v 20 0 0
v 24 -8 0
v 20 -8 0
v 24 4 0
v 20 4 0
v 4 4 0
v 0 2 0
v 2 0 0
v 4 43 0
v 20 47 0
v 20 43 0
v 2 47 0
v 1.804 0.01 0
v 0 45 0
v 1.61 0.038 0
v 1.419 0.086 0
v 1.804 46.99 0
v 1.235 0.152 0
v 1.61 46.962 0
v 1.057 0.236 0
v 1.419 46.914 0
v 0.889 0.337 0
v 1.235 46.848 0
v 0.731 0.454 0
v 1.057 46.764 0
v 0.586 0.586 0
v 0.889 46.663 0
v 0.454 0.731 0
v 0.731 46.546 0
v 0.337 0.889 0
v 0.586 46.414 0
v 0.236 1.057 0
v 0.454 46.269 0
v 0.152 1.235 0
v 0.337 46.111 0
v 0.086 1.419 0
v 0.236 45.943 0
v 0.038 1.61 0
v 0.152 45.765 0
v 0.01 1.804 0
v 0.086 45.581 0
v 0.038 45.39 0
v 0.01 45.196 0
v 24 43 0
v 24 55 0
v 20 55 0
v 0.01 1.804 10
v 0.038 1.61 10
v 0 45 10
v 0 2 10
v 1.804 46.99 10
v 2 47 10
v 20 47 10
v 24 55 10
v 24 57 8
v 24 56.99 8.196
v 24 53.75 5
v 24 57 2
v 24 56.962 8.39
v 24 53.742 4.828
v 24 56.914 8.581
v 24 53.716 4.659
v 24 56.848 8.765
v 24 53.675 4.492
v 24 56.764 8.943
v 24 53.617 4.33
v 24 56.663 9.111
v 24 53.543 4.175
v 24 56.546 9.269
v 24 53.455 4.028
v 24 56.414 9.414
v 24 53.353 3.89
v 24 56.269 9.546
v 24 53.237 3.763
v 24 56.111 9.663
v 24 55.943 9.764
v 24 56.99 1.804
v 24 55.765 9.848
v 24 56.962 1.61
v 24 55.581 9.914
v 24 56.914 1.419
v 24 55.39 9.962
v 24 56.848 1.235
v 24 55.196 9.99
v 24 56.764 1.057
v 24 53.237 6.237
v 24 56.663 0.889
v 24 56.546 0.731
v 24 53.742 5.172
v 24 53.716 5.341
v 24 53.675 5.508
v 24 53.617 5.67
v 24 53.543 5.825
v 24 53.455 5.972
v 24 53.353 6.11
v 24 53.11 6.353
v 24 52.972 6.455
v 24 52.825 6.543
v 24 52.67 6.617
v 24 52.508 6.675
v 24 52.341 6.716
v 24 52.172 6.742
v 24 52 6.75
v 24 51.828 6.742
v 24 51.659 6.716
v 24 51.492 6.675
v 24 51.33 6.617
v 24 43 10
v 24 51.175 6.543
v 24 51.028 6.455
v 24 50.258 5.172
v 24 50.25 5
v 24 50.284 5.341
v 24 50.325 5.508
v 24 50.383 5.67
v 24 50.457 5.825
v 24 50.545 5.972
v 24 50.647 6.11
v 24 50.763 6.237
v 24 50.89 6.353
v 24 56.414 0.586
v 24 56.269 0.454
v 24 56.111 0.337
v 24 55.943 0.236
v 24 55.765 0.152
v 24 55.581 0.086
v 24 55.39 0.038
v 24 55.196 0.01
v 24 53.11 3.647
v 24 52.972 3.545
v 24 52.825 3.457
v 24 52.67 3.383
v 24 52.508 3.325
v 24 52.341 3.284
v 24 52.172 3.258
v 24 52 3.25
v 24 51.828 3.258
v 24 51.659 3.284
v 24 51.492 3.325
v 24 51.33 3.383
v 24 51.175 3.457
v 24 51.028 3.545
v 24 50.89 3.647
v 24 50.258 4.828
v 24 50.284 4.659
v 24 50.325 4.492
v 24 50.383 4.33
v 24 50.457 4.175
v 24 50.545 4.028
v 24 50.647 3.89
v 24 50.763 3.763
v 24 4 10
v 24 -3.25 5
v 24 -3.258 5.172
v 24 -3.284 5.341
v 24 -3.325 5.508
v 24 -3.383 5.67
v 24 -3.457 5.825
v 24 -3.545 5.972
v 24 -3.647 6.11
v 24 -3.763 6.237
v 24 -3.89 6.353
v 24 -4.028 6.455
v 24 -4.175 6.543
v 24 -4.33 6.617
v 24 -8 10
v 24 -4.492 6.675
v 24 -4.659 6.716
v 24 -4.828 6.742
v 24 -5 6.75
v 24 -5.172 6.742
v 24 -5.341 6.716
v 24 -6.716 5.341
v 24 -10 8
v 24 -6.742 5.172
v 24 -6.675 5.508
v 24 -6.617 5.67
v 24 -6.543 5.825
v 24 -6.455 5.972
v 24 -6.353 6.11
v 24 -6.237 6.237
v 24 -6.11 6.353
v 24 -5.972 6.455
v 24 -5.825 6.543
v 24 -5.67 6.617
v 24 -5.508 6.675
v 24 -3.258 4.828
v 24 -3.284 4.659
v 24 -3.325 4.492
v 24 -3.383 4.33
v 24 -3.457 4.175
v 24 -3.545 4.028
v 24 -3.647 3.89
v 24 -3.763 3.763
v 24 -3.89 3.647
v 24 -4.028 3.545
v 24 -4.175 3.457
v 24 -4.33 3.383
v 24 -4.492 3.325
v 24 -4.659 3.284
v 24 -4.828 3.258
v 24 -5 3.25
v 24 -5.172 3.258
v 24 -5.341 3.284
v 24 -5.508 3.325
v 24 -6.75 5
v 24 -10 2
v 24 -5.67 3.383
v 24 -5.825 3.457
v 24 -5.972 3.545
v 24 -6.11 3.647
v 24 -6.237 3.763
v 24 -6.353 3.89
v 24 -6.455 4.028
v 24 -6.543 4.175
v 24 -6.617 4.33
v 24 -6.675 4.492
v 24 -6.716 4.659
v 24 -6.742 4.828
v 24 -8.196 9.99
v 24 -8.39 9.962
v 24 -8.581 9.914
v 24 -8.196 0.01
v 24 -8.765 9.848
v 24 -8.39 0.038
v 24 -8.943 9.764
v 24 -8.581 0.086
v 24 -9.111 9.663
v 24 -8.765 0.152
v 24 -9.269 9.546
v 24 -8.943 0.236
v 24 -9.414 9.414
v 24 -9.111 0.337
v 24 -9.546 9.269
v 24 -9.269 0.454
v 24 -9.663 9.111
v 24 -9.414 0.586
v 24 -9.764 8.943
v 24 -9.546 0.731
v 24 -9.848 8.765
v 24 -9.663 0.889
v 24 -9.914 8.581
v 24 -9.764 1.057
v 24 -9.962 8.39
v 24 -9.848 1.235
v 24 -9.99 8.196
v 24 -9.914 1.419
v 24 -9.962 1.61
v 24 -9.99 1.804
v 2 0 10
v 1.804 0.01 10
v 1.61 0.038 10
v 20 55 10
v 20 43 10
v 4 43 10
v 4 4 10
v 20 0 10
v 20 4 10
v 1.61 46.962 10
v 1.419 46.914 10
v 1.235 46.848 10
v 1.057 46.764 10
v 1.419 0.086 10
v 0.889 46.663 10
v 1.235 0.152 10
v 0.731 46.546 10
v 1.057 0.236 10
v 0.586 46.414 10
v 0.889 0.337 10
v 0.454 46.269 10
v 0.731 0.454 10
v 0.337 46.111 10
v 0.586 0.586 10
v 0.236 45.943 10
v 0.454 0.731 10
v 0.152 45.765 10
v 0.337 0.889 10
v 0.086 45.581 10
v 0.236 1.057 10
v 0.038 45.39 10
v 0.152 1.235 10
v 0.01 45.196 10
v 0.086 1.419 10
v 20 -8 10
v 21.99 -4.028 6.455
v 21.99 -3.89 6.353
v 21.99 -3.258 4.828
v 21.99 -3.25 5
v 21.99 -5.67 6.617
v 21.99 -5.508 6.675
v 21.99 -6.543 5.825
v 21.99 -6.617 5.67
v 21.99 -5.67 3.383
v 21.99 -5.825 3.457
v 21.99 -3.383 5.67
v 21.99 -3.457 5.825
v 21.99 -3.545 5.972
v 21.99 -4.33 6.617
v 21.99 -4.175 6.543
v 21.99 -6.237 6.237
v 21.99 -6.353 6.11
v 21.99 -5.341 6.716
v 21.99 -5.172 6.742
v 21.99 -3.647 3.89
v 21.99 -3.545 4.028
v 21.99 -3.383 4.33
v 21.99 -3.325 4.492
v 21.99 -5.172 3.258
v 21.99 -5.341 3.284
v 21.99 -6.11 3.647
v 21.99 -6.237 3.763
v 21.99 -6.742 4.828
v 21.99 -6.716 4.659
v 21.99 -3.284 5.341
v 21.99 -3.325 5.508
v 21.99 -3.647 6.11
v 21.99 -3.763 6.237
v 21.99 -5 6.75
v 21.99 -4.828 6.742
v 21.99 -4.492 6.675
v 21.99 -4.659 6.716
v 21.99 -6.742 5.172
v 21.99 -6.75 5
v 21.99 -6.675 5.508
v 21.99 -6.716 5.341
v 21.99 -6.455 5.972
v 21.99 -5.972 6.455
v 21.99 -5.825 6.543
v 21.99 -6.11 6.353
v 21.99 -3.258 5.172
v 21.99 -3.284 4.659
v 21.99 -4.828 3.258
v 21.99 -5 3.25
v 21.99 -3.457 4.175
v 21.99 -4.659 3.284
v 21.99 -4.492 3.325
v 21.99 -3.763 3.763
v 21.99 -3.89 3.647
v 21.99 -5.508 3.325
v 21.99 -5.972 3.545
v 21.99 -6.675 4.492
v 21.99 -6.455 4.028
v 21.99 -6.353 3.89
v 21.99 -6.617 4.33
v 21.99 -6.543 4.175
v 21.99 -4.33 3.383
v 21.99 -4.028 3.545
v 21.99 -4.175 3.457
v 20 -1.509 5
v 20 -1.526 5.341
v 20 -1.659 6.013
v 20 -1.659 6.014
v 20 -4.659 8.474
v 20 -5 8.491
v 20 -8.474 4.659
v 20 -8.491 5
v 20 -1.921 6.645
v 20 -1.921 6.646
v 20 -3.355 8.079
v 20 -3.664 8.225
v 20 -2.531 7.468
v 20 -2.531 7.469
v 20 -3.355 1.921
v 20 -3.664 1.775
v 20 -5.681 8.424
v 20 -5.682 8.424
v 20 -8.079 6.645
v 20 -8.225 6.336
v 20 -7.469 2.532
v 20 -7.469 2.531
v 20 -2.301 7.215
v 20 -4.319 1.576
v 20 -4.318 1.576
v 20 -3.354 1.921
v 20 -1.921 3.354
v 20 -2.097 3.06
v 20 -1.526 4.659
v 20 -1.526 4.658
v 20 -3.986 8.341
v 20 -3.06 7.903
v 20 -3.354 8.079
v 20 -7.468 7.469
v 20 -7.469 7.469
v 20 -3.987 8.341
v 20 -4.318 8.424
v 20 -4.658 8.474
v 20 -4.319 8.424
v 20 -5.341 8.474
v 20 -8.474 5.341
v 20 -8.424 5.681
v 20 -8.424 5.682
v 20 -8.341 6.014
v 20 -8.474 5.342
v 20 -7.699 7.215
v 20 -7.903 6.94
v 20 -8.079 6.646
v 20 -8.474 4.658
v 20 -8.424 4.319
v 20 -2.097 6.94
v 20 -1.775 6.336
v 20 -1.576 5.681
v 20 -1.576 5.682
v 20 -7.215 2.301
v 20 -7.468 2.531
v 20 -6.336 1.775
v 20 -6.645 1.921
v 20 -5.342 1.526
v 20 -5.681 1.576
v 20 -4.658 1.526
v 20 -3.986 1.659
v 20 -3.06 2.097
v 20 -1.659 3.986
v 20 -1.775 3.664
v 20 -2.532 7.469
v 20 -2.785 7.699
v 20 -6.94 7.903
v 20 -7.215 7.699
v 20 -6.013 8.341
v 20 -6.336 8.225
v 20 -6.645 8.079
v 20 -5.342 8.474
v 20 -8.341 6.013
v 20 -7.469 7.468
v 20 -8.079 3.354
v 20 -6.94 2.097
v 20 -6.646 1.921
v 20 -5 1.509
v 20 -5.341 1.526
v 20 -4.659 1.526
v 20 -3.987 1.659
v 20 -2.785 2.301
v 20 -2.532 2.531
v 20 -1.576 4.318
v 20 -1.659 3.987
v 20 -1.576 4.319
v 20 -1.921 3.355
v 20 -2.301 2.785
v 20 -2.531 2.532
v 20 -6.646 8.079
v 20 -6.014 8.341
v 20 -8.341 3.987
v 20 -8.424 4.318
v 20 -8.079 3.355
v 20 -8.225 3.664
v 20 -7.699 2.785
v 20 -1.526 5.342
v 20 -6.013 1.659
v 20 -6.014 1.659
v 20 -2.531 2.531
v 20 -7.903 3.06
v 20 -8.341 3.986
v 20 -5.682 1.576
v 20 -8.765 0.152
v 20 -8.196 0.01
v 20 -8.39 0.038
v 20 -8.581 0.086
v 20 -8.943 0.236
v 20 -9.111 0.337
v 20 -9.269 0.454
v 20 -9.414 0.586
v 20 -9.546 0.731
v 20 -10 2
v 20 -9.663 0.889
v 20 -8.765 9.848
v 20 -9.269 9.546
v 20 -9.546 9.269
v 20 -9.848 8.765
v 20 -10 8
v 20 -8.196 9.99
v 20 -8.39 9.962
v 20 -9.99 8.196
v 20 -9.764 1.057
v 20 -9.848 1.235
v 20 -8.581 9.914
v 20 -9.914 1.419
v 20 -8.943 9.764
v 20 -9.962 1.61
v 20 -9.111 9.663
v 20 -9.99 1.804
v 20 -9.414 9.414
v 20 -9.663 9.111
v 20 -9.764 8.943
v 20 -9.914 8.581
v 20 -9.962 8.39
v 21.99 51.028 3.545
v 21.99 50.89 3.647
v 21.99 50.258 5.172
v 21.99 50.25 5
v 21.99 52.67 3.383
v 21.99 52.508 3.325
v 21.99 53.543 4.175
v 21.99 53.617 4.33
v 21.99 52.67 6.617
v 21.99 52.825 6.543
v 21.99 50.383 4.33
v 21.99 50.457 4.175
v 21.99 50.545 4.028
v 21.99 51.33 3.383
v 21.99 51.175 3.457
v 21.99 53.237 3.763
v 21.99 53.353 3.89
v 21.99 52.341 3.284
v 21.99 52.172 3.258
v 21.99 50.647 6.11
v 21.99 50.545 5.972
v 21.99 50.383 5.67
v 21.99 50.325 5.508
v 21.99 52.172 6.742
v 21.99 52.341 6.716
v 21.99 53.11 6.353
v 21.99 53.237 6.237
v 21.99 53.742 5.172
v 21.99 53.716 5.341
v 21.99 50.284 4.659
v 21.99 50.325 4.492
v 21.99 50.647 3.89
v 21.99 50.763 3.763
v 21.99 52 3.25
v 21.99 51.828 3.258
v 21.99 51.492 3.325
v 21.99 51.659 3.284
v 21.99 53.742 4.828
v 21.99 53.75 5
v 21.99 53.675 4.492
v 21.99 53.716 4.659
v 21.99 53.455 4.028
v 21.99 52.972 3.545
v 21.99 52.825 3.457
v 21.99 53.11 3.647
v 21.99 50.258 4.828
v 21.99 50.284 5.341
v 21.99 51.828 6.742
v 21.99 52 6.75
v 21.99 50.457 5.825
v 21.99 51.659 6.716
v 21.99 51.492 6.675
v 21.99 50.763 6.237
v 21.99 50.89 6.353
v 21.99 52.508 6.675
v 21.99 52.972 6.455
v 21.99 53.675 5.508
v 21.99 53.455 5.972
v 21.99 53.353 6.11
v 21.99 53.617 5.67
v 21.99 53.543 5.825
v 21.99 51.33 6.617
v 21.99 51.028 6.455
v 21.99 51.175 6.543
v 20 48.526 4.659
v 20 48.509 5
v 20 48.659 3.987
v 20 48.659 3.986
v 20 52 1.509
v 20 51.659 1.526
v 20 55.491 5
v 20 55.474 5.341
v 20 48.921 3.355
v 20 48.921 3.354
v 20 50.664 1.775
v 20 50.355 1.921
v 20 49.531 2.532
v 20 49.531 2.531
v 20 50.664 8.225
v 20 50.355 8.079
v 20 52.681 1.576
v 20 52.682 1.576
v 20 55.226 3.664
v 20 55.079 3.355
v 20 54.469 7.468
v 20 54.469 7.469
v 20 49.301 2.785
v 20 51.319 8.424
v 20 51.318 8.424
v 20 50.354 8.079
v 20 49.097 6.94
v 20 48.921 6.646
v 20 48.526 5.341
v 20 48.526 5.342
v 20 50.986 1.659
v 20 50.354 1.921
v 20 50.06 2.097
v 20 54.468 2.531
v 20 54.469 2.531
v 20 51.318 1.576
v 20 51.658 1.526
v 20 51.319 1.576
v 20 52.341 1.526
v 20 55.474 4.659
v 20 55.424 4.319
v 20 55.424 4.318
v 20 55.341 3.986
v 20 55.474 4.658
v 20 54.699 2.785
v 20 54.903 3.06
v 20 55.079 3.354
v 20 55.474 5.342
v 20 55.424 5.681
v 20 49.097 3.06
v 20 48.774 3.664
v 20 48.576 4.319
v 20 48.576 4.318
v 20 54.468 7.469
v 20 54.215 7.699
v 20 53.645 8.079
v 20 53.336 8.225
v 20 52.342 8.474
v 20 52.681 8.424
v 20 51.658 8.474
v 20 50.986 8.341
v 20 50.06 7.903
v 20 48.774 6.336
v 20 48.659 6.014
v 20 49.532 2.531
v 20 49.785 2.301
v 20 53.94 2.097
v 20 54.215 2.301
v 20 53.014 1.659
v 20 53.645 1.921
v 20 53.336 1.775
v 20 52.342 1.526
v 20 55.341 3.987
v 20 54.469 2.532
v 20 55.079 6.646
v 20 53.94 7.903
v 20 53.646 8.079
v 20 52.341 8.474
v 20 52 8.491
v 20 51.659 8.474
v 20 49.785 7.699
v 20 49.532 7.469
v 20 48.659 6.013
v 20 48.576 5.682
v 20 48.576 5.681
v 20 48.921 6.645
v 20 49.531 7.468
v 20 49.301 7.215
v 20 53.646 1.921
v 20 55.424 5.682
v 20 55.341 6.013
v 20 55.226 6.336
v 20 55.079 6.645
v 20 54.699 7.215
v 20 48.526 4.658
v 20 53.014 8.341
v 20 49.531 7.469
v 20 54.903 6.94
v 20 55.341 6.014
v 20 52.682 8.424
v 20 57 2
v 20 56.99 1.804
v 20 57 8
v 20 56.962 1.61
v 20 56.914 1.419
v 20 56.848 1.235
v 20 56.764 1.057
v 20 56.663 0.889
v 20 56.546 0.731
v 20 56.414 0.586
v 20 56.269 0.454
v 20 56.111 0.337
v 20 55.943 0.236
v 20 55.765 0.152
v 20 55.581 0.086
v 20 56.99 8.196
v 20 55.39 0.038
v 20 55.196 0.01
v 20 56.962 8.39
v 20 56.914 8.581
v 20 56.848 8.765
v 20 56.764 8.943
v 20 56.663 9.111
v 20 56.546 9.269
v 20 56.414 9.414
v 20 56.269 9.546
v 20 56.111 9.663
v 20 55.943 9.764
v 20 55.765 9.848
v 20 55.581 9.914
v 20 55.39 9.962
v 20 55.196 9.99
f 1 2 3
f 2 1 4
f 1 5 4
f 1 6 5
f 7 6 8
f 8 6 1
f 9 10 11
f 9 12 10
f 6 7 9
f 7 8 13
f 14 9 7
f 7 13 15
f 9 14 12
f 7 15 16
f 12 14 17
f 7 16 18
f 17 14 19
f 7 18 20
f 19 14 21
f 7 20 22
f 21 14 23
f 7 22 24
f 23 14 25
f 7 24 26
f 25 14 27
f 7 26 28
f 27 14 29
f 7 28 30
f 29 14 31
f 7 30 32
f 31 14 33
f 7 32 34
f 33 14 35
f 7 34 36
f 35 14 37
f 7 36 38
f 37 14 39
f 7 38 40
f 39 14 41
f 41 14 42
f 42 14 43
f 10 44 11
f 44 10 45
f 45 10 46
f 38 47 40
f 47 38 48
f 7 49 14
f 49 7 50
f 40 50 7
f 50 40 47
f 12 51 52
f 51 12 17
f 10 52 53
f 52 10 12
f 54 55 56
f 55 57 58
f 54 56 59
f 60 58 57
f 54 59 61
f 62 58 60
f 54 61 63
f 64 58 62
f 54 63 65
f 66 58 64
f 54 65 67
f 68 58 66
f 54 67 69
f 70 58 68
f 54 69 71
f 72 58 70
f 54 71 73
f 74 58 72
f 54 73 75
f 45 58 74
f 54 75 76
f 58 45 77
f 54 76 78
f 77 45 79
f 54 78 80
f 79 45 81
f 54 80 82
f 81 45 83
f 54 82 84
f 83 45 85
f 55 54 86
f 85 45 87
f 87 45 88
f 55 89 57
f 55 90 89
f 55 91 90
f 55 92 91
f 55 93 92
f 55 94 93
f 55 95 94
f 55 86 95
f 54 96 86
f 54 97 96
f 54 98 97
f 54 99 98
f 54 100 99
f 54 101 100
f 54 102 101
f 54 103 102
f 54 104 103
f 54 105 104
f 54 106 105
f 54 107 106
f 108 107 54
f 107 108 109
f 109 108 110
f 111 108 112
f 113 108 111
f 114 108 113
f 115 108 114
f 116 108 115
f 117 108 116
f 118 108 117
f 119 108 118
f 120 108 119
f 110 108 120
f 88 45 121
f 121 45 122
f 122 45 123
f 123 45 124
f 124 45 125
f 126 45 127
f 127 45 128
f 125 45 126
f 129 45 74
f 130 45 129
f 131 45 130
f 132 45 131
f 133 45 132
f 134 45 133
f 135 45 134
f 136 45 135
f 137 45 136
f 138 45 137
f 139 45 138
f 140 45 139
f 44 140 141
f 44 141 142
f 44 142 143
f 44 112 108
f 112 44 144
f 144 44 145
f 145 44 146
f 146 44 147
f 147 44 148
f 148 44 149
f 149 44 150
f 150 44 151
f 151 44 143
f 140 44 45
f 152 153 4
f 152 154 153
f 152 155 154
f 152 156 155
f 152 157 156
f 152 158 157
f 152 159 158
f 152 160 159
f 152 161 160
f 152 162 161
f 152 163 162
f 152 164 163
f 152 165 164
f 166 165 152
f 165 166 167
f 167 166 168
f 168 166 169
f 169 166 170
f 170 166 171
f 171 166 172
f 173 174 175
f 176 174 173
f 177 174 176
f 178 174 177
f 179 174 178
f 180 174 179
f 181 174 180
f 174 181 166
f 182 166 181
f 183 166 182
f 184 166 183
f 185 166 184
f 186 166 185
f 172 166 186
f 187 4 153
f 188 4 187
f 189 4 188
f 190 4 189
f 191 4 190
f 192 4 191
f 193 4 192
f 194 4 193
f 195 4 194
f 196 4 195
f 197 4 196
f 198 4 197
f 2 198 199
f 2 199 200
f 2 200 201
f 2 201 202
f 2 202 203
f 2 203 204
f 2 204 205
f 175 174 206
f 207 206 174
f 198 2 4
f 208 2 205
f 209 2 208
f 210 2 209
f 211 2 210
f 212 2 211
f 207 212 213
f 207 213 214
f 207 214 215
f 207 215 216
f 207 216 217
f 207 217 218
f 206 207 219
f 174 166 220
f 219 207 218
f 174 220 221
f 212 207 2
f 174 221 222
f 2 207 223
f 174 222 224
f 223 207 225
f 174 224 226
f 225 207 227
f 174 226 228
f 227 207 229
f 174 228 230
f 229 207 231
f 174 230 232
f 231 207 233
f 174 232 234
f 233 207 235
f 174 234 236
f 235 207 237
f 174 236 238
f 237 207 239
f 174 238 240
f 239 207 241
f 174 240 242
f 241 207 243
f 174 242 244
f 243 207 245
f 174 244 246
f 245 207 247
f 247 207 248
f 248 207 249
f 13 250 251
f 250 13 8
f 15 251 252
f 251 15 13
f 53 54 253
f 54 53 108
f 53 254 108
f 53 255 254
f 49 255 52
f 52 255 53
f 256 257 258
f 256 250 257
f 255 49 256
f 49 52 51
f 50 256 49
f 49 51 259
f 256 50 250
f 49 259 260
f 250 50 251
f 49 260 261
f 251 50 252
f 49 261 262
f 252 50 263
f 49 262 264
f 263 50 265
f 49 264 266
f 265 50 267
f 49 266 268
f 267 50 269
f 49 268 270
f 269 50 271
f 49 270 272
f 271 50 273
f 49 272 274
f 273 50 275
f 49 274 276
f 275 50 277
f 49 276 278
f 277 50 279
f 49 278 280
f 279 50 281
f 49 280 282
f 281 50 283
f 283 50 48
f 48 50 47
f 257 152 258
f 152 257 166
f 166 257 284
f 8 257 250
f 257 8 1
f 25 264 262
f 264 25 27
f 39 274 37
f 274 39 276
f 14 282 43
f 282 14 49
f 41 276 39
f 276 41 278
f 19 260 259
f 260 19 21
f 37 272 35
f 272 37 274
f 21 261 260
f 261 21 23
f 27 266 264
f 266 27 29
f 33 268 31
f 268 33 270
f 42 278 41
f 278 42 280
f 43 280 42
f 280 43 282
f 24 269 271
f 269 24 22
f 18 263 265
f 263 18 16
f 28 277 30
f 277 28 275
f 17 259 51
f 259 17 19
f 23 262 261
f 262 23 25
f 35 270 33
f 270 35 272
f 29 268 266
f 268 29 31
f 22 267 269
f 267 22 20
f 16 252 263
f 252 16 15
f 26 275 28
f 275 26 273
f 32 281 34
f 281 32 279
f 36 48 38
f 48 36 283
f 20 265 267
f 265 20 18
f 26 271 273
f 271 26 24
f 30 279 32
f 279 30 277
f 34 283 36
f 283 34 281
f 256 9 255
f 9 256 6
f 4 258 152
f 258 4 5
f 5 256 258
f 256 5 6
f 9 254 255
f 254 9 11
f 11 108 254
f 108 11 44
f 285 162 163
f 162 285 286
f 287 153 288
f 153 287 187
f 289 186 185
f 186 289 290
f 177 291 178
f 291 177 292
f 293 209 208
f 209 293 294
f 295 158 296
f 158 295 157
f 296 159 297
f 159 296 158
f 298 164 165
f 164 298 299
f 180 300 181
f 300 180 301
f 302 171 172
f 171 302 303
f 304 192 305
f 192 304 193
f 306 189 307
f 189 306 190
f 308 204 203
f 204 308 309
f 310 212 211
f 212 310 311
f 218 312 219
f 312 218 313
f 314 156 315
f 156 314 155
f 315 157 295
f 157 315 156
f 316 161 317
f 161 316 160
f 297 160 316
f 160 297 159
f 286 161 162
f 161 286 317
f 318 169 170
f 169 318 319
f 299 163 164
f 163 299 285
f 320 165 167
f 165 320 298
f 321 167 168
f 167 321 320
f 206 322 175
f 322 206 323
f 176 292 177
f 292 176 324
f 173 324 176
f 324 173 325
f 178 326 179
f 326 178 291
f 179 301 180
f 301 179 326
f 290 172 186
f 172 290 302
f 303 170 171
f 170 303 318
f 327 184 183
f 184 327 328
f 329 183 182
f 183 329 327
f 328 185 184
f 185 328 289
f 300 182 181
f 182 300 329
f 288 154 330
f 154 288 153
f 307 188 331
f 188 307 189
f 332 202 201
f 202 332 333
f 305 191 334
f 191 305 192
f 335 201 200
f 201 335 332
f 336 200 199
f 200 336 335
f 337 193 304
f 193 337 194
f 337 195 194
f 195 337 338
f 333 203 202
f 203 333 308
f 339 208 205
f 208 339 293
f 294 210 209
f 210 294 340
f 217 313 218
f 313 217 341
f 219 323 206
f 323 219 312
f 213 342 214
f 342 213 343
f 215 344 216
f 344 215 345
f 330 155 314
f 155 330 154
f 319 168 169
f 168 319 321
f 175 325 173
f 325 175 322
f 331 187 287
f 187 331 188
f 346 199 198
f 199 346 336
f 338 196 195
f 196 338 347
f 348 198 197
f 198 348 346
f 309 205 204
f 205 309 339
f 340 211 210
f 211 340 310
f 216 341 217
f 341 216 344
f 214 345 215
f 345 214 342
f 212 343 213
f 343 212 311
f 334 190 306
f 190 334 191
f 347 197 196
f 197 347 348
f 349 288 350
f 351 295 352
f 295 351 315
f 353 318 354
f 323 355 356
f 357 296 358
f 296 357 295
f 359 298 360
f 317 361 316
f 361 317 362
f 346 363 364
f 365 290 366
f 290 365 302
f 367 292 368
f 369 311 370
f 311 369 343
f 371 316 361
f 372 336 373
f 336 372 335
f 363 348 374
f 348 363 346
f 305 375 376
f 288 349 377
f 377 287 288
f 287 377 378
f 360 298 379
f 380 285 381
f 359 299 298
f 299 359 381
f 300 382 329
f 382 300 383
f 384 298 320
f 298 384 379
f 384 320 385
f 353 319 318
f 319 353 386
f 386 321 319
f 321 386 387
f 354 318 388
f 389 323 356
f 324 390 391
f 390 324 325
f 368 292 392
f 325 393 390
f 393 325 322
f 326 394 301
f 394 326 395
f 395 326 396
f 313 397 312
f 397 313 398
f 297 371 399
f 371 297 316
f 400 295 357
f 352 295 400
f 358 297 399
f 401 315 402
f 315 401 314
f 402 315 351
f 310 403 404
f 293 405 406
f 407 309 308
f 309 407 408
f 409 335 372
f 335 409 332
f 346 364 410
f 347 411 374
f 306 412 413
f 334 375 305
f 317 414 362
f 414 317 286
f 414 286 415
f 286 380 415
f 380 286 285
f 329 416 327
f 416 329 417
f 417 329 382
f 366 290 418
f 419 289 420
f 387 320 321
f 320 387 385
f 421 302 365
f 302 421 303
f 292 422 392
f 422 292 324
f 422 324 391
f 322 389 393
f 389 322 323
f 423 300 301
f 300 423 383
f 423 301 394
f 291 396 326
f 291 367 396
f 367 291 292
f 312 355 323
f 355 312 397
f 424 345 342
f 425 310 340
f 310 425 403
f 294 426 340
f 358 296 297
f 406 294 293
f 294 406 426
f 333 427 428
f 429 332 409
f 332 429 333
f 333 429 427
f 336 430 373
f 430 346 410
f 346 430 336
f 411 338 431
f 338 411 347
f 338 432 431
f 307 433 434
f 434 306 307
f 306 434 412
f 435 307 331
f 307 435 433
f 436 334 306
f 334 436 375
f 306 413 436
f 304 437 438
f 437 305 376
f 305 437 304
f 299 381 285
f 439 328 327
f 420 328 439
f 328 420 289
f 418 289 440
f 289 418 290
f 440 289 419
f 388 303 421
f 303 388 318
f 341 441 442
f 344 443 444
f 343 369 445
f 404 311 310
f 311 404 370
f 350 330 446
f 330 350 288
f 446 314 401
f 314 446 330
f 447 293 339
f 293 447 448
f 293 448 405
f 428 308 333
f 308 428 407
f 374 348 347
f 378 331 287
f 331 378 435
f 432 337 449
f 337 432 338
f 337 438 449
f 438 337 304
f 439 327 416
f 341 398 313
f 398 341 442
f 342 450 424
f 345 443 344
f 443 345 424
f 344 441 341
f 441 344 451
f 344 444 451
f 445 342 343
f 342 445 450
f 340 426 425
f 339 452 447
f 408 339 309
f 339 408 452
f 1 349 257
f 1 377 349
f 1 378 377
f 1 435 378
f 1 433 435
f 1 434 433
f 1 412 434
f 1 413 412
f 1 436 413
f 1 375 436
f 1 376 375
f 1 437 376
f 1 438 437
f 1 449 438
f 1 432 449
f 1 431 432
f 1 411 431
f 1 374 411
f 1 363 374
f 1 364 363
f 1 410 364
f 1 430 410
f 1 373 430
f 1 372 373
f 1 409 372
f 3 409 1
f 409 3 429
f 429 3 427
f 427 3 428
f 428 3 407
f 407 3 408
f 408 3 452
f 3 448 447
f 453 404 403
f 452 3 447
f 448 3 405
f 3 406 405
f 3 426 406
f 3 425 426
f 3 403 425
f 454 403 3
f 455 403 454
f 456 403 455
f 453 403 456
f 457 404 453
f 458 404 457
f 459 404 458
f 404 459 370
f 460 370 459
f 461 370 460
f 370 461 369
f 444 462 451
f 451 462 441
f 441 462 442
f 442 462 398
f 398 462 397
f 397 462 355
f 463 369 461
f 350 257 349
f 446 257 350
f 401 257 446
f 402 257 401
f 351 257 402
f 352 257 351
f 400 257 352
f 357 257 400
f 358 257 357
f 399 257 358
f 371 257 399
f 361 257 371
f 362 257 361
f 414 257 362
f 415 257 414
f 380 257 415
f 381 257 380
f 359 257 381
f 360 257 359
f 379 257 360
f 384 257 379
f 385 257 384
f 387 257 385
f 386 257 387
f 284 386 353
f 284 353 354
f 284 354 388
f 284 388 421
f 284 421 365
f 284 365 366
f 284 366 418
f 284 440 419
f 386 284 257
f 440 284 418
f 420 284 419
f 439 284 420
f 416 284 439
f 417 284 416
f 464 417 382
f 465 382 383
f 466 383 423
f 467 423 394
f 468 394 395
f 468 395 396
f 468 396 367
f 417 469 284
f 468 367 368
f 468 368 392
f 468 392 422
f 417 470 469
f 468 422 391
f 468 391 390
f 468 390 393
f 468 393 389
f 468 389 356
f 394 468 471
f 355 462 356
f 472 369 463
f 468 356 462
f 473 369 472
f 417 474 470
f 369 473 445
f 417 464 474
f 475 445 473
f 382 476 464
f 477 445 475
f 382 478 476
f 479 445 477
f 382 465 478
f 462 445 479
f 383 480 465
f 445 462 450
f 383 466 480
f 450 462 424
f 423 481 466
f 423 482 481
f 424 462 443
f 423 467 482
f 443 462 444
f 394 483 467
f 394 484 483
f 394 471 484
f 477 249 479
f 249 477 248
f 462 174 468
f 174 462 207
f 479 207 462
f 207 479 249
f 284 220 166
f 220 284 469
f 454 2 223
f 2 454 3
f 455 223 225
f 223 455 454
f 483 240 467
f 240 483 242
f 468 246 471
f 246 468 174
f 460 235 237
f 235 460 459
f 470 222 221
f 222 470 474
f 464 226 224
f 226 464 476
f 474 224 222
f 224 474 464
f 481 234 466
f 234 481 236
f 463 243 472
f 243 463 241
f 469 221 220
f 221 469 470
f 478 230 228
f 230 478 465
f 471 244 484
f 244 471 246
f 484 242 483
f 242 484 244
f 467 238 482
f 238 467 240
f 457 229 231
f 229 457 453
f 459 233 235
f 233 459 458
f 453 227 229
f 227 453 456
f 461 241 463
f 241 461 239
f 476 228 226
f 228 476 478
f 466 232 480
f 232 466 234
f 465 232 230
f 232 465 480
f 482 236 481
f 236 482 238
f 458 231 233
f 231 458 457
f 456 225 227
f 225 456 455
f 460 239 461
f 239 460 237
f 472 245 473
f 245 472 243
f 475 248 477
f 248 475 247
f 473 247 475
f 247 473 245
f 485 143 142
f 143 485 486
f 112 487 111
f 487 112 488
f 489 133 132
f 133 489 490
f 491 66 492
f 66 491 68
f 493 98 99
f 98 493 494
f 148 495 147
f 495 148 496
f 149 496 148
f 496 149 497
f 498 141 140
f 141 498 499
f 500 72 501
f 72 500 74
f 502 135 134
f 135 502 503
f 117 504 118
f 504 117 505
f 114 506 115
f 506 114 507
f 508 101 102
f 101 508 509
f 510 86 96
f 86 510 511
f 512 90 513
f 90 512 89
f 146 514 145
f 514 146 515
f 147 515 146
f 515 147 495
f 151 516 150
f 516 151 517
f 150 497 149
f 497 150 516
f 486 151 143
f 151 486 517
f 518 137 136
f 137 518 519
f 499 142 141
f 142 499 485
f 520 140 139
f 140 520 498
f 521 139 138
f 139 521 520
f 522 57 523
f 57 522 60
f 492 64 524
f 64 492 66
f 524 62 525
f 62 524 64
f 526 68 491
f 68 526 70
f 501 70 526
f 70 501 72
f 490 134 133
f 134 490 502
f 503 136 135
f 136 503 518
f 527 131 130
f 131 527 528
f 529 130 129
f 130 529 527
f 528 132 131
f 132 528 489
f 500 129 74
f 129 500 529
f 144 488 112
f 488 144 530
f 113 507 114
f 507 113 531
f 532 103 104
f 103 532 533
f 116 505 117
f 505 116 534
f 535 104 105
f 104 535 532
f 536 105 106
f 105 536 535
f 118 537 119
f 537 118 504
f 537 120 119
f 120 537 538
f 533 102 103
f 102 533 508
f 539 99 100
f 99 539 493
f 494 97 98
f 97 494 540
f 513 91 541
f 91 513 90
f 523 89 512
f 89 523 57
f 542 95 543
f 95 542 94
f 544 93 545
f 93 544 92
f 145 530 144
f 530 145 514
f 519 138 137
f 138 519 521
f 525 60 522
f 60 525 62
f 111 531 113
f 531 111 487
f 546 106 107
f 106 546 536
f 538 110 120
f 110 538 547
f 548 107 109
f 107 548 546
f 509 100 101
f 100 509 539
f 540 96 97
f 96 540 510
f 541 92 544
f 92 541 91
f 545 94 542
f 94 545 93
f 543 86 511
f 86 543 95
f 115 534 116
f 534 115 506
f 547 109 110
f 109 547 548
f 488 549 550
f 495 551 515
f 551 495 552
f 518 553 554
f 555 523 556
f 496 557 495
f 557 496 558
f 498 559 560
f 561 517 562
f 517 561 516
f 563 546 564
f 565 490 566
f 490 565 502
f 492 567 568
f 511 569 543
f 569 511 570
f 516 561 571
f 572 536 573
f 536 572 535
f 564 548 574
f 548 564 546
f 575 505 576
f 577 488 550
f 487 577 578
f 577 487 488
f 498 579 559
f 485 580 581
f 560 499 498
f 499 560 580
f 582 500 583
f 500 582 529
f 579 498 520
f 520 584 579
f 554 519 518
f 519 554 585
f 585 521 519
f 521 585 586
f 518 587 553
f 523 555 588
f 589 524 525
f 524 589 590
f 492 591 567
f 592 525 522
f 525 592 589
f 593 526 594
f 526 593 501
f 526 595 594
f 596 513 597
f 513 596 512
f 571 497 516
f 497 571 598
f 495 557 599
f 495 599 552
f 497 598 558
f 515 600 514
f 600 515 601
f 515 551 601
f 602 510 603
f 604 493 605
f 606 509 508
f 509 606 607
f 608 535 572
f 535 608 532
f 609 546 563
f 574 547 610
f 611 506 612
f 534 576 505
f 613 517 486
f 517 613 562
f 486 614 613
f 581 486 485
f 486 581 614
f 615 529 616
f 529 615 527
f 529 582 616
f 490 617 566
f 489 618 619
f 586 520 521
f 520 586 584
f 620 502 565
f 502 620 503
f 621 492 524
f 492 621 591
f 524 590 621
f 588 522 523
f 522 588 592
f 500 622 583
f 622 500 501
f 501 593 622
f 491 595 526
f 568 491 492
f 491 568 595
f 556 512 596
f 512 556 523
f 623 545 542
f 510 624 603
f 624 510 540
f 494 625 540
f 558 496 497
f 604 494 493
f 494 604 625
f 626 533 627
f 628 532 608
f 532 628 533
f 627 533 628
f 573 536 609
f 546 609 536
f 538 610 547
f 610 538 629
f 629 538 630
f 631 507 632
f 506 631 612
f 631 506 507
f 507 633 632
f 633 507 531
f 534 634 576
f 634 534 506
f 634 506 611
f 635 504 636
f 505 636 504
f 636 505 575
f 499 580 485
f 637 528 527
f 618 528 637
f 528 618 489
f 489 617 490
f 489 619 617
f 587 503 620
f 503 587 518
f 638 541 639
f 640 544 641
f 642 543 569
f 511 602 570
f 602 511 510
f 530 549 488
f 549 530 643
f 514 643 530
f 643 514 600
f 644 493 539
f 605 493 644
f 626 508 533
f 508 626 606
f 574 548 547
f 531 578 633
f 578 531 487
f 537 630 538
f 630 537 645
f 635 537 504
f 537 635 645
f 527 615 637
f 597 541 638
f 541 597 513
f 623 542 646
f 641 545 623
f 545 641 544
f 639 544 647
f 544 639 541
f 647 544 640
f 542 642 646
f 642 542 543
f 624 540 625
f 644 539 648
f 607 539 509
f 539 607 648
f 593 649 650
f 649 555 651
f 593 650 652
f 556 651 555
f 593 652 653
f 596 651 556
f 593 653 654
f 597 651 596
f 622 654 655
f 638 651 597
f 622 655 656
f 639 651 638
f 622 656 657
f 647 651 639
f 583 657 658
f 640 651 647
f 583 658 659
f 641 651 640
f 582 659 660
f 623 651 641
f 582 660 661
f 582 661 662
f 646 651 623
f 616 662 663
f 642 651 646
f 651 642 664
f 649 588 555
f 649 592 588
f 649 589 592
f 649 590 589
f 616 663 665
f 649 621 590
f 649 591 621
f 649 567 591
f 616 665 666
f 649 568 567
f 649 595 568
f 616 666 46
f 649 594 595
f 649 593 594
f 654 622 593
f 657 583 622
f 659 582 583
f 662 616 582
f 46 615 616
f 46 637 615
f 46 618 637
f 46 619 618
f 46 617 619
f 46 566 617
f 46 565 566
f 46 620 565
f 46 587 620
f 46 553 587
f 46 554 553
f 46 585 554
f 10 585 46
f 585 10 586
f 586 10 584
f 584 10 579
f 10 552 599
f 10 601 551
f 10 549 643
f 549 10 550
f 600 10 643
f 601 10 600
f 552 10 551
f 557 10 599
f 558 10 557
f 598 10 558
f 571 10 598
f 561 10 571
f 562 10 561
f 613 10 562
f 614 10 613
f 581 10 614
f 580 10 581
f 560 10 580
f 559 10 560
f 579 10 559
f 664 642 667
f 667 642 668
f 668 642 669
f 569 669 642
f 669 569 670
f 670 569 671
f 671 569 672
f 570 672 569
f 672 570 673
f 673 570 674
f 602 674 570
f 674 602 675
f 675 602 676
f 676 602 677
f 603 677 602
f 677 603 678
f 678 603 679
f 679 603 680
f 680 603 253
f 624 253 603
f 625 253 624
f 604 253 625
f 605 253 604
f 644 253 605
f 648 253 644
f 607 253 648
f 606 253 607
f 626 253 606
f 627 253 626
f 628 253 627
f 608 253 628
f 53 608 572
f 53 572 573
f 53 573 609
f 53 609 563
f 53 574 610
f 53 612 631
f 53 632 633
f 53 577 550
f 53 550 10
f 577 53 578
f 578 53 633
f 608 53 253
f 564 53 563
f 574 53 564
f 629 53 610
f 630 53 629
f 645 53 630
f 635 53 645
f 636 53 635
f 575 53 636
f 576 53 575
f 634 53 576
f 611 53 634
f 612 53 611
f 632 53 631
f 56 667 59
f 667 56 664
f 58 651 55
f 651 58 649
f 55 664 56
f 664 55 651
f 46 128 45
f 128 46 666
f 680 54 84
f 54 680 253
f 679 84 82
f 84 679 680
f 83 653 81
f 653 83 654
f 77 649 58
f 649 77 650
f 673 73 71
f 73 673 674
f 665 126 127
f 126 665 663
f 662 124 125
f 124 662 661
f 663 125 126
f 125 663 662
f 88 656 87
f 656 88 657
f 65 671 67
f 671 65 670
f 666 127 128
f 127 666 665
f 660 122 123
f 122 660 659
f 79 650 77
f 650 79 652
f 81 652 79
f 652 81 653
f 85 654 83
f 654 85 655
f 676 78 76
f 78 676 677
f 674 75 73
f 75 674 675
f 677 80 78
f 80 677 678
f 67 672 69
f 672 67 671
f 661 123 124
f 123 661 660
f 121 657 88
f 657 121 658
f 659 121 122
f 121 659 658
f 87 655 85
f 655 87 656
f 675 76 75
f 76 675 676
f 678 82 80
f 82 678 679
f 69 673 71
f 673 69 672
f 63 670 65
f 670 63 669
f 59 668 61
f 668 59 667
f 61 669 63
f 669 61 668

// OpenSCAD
// file: ../../Various/SCAD/rounded_box.scad
/**
 * Small "library" for creating boxes with rounded edges.
 *
 * Hendrik Busch, 2017-18 (https://github.com/hmbusch)
 *
 */
 
/**
 * Creates a 2D-shape of a box with the given dimensions and rounded edges. 
 * Be sure to increase $fn for nicer edges.
 *
 * @param width
 *          the desired width of the box (default is 10mm)
 * @param depth
 *          the desired depth of the box (default is 10mm)
 * @param height
 *          the desired height of the box (default is 10mm)
 * @param edge_radius
 *          the radius of all the edges on the xy-plane (default is 2mm)
 */  
module box_with_round_edges_2d(width = 10, depth = 10, edge_radius = 2) {
    ed = edge_radius * 2;
    translate([edge_radius, edge_radius, 0]) hull() {
        circle(d = ed);
        translate([width - ed, 0, 0]) circle(d = ed);
        translate([0, depth - ed, 0]) circle(d = ed);
        translate([width - ed, depth - ed, 0]) circle(d = ed);    
    }
}
 
/**
 * Call to create a box with rounded edges (edges will be round on one plane only).
 * Be sure to increase $fn for nicer edges.
 * 
 * @param width
 *          the desired width of the box (default is 10mm)
 * @param depth
 *          the desired depth of the box (default is 10mm)
 * @param height
 *          the desired height of the box (default is 10mm)
 * @param edge_radius
 *          the radius of all the edges on the xy-plane (default is 2mm)
 *
 */
module box_with_round_edges_3d(width = 10, depth = 10, height = 10, edge_radius = 2) {
	linear_extrude(height = height) {
		box_with_round_edges_2d(width, depth, edge_radius);
	}
}

/**
 * Call to create a box with rounded edges (edges will be round on one plane only).
 * Be sure to increase $fn for nicer edges. This module has inputs that resemble
 * those of cube() so that it can act as a drop-in replacement.
 * 
 * @param dimensions
 *          3-value-array with x, y and z dimensions (default is 10x10x10mm).
 * @param edge_radius
 *          the radius of all the edges on the xy-plane (default is 2mm)
 *
 */
module box_with_round_edges_3d(dimensions = [10, 10, 10], edge_radius = 2) {
	linear_extrude(height = dimensions[2]) {
		box_with_round_edges_2d(dimensions[0], dimensions[1], edge_radius);
	}
}
// main file
use <../../Various/SCAD/rounded_box.scad>

$fn = 64;
fudge = 0.01;

module_height = 20;
module_width = 39;

bracket_thickness = 4;
bracket_width = 10;

mounting_post_width = 10;

// Derived values, do not edit
pf = fudge;
nf = -fudge;

module mounting_post() {
    rotate([90, 0, 90]) {
        difference() { 
            box_with_round_edges_3d(
                dimensions = [mounting_post_width + bracket_thickness, bracket_width, bracket_thickness],
                edges = [true, false, true, false]);
            translate([mounting_post_width/2, bracket_width/2, 0]) {
                translate([0, 0, bracket_thickness/2 - bracket_thickness])
                    cylinder(d = 3.5, h = 2 * bracket_thickness);
                translate([0, 0, nf]) cylinder(d1 = 7, d2 = 3.5, h = 2);
            }
        }
    }
}

module bracket()  {
    difference() {
        box_with_round_edges_3d(
            dimensions = [module_height + bracket_thickness, module_width + 2 * bracket_thickness, bracket_width],
            edges = [true, false, true, false]);
        translate([bracket_thickness, bracket_thickness, bracket_width/2-bracket_width]) cube([module_height + pf, module_width, 2 * bracket_width]);
    }
}

module final_part() {
    bracket();
    translate([module_height, -mounting_post_width, 0])
        mounting_post();
    translate([module_height, module_width + 2 * bracket_thickness + mounting_post_width, bracket_width])
        rotate([180, 0, 0]) 
            mounting_post();
}

final_part();
    
